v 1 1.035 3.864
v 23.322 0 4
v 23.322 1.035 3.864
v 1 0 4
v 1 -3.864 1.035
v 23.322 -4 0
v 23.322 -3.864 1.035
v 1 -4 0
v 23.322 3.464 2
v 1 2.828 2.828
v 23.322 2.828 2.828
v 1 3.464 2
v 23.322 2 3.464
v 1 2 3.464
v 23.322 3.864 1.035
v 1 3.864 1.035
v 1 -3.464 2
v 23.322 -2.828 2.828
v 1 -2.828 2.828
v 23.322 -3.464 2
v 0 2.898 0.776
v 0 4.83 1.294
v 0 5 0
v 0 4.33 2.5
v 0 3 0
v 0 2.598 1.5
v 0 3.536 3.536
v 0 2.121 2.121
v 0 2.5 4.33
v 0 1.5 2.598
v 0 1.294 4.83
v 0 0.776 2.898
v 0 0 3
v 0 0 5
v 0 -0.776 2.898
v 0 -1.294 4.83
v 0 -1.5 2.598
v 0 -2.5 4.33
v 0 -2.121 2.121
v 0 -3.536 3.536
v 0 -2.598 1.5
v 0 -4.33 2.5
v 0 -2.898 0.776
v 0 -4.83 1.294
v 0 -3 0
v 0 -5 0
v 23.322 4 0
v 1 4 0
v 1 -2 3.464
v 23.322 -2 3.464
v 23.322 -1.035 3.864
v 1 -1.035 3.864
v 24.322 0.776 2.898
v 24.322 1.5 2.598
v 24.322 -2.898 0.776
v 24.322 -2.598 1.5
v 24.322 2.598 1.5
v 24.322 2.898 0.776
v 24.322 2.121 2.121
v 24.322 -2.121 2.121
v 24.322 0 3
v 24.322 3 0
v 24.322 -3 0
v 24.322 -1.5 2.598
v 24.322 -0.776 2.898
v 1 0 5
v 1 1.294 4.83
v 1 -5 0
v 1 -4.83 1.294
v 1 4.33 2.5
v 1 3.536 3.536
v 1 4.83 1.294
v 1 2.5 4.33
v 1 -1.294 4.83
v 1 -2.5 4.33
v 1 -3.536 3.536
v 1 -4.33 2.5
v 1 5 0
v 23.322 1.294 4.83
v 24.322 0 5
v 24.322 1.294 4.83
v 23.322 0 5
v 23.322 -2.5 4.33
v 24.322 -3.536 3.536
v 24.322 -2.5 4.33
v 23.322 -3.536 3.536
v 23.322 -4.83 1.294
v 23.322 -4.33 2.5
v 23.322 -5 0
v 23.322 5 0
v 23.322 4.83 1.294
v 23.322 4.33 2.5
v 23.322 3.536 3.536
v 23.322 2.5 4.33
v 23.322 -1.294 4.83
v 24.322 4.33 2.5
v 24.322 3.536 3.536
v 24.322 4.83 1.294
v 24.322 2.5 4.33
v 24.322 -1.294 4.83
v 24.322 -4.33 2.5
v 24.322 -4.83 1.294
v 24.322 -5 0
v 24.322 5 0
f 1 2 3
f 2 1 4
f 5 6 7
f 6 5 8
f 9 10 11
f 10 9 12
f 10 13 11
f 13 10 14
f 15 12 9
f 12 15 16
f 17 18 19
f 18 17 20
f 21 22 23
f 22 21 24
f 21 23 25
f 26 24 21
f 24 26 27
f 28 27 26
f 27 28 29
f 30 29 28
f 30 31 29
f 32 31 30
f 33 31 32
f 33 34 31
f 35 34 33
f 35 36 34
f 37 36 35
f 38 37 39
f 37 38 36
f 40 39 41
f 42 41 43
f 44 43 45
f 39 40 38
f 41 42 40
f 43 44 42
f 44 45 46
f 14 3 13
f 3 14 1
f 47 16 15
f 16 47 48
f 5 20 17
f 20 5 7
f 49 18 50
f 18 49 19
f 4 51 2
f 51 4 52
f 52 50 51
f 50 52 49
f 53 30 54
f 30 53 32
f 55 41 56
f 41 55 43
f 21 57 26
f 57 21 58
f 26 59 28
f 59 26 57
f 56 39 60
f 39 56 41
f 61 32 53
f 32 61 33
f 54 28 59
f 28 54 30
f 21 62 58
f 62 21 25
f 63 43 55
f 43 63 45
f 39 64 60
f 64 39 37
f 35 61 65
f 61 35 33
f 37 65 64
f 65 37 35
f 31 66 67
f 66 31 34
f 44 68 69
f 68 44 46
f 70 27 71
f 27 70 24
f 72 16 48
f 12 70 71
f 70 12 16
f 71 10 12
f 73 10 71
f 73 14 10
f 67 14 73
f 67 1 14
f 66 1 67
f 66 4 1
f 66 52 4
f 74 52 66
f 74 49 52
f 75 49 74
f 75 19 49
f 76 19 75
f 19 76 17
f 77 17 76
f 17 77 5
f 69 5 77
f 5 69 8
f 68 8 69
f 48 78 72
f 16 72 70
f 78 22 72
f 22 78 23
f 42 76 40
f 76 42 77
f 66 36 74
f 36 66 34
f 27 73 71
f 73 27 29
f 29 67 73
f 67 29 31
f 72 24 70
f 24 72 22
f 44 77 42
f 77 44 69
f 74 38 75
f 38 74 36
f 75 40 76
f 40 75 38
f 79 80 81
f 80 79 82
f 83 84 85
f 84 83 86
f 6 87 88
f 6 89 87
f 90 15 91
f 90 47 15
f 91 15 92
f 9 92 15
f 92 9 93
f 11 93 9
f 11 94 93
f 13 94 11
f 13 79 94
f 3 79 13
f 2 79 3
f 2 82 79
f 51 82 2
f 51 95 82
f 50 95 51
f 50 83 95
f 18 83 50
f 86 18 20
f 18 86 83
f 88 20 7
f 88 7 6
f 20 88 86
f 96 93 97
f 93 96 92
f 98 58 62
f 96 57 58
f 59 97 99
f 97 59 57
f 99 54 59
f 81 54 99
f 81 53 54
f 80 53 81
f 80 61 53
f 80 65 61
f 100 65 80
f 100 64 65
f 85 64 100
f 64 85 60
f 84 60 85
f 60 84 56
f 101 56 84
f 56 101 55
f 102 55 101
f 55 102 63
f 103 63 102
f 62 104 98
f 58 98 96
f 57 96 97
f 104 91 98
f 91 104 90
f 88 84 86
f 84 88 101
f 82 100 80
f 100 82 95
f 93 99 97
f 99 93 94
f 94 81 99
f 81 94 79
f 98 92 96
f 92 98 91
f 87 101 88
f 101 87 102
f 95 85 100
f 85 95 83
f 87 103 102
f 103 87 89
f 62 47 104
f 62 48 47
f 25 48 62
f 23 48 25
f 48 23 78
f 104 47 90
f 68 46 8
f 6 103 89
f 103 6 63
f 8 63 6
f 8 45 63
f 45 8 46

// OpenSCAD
// file: ../build_environments.scad
// build_environments.scad: modules to build level sections
//

module pool(diameter=10.0, wall_height=2.0, step_width=3.0, connections=[])
{
    difference() {
        union() {
        difference() {
            cylinder(h=0.5,r1=diameter+step_width,r2=diameter+step_width,$fn=48);
            translate([0,0,-0.1])
                cylinder(h=0.7,r1=diameter,r2=diameter,$fn=48);
        }
        difference() {
            cylinder(h=wall_height,r1=diameter+step_width+1.0,r2=diameter+step_width+1.0,$fn=48);
            translate([0,0,-0.1])
                cylinder(h=wall_height+0.2,r1=diameter+step_width,r2=diameter+step_width,$fn=48);
        }
        }
    
        for (c = connections)
        {
            rotate([0,90,0]) {
                angle = atan2(c[1],c[0]);
                rotate([-angle,0,0]) {
                    cylinder(h=diameter+5.0,r1=c[2],r2=c[2],$fn=48);
                }
            }
        }
    }
}

module straight(length=10.0, width=2.0, dy1=0.0, dy2=0.0, dz=0.0)
{
    dims = [0, 0, 0, 0, 0, (dz/length)];
    matrix = [
        [ 1, dims[0], dims[1], 0 ],
        [ dims[2], 1, dims[4], 0 ],
        [ dims[5], dims[3], 1, 0 ],
        [ 0, 0, 0, 1 ]
    ];
    multmatrix(matrix)
    difference() {
        translate([dy1,0,0])
        union() {
            rotate([0,90,0]) {
                difference() {
                    cylinder(h=(length-dy1-dy2),r1=width+1.0,r2=width+1.0,$fn=24);
                    translate([0,0,-0.1])
                        cylinder(h=(length-dy1-dy2+0.2),r1=width,r2=width,$fn=24);
                }
                difference() {
                    cylinder(h=1.0,r1=width+2.0,r2=width+2.0,$fn=24);
                    translate([0,0,-0.1])
                        cylinder(h=1.2,r1=width,r2=width,$fn=24);
                }
                translate([0,0,(length-dy1-dy2)-1.0]) {
                    difference() {
                        cylinder(h=1.0,r1=width+2.0,r2=width+2.0,$fn=24);
                        translate([0,0,-0.1])
                            cylinder(h=1.2,r1=width,r2=width,$fn=24);
                    }
                }
            }
        }
        translate([0,0,-(2*width+4.0)/2])
            cube([3*length,3*length,2*width+4.0],center=true);
    }
}

module curve(p0=[0,0], center=[0,0], dir=1, angle=0.0, width=2.0)
{
    radius = sqrt((p0[0]-center[0])*(p0[0]-center[0]) + (p0[1]-center[1])*(p0[1]-center[1]));
    if (dir == 0) {
        difference() {
            rotate([0,0,-90])
            difference() {
                rotate_extrude(angle = angle, convexity = 10, $fn=32)
                    translate([radius, 0, 0])
                        circle(r = width+1.0,$fn=24);
                rotate([0,0,-1.0])
                    rotate_extrude(angle = angle+2.0, convexity = 10, $fn=32)
                        translate([radius, 0, 0])
                            circle(r = width,$fn=24);
            }
            translate([0,0,-(2*width+4.0)/2])
                cube([5*radius,5*radius,2*width+4.0],center=true);
        }
    }
    else {
        difference() {
            rotate([0,0,90])
            difference() {
                rotate_extrude(angle = -angle, convexity = 10, $fn=32)
                    translate([radius, 0, 0])
                        circle(r = width+1.0,$fn=24);
                rotate([0,0,1.0])
                    rotate_extrude(angle = -angle-2.0, convexity = 10, $fn=32)
                        translate([radius, 0, 0])
                            circle(r = width,$fn=24);
            }
            translate([0,0,-(2*width+4.0)/2])
                cube([5*radius,5*radius,2*width+4.0],center=true);
        }
    }

}

// test pool
//pool(diameter=12.0000, wall_height=3.0000, step_width=3.0000, connections=[[0.0000,-26.0000,2.0000], [23.6074,0.0000,2.0000]]);

// test straight, slope
//straight(length=26.0000, width=2.0000, dy1=11.8322, dy2=6.7082, dz=0.0000);
//straight(length=29.1549, width=12.0000, dy1=0.0000, dy2=0.0000, dz=-15.0000);

// test curve
//curve(p0=[23.6074, 0.0000], center=[23.6074, 5.0000], dir=0, angle=60.1011, width=2.0000);
//curve(p0=[33.6426, 12.4219], center=[37.9771, 9.9295], dir=1, angle=120.4627, width=2.0000);
// main file
use <../build_environments.scad>;
straight(length=24.3220, width=3.0000, dy1=0.0000, dy2=0.0000, dz=0.0000);
